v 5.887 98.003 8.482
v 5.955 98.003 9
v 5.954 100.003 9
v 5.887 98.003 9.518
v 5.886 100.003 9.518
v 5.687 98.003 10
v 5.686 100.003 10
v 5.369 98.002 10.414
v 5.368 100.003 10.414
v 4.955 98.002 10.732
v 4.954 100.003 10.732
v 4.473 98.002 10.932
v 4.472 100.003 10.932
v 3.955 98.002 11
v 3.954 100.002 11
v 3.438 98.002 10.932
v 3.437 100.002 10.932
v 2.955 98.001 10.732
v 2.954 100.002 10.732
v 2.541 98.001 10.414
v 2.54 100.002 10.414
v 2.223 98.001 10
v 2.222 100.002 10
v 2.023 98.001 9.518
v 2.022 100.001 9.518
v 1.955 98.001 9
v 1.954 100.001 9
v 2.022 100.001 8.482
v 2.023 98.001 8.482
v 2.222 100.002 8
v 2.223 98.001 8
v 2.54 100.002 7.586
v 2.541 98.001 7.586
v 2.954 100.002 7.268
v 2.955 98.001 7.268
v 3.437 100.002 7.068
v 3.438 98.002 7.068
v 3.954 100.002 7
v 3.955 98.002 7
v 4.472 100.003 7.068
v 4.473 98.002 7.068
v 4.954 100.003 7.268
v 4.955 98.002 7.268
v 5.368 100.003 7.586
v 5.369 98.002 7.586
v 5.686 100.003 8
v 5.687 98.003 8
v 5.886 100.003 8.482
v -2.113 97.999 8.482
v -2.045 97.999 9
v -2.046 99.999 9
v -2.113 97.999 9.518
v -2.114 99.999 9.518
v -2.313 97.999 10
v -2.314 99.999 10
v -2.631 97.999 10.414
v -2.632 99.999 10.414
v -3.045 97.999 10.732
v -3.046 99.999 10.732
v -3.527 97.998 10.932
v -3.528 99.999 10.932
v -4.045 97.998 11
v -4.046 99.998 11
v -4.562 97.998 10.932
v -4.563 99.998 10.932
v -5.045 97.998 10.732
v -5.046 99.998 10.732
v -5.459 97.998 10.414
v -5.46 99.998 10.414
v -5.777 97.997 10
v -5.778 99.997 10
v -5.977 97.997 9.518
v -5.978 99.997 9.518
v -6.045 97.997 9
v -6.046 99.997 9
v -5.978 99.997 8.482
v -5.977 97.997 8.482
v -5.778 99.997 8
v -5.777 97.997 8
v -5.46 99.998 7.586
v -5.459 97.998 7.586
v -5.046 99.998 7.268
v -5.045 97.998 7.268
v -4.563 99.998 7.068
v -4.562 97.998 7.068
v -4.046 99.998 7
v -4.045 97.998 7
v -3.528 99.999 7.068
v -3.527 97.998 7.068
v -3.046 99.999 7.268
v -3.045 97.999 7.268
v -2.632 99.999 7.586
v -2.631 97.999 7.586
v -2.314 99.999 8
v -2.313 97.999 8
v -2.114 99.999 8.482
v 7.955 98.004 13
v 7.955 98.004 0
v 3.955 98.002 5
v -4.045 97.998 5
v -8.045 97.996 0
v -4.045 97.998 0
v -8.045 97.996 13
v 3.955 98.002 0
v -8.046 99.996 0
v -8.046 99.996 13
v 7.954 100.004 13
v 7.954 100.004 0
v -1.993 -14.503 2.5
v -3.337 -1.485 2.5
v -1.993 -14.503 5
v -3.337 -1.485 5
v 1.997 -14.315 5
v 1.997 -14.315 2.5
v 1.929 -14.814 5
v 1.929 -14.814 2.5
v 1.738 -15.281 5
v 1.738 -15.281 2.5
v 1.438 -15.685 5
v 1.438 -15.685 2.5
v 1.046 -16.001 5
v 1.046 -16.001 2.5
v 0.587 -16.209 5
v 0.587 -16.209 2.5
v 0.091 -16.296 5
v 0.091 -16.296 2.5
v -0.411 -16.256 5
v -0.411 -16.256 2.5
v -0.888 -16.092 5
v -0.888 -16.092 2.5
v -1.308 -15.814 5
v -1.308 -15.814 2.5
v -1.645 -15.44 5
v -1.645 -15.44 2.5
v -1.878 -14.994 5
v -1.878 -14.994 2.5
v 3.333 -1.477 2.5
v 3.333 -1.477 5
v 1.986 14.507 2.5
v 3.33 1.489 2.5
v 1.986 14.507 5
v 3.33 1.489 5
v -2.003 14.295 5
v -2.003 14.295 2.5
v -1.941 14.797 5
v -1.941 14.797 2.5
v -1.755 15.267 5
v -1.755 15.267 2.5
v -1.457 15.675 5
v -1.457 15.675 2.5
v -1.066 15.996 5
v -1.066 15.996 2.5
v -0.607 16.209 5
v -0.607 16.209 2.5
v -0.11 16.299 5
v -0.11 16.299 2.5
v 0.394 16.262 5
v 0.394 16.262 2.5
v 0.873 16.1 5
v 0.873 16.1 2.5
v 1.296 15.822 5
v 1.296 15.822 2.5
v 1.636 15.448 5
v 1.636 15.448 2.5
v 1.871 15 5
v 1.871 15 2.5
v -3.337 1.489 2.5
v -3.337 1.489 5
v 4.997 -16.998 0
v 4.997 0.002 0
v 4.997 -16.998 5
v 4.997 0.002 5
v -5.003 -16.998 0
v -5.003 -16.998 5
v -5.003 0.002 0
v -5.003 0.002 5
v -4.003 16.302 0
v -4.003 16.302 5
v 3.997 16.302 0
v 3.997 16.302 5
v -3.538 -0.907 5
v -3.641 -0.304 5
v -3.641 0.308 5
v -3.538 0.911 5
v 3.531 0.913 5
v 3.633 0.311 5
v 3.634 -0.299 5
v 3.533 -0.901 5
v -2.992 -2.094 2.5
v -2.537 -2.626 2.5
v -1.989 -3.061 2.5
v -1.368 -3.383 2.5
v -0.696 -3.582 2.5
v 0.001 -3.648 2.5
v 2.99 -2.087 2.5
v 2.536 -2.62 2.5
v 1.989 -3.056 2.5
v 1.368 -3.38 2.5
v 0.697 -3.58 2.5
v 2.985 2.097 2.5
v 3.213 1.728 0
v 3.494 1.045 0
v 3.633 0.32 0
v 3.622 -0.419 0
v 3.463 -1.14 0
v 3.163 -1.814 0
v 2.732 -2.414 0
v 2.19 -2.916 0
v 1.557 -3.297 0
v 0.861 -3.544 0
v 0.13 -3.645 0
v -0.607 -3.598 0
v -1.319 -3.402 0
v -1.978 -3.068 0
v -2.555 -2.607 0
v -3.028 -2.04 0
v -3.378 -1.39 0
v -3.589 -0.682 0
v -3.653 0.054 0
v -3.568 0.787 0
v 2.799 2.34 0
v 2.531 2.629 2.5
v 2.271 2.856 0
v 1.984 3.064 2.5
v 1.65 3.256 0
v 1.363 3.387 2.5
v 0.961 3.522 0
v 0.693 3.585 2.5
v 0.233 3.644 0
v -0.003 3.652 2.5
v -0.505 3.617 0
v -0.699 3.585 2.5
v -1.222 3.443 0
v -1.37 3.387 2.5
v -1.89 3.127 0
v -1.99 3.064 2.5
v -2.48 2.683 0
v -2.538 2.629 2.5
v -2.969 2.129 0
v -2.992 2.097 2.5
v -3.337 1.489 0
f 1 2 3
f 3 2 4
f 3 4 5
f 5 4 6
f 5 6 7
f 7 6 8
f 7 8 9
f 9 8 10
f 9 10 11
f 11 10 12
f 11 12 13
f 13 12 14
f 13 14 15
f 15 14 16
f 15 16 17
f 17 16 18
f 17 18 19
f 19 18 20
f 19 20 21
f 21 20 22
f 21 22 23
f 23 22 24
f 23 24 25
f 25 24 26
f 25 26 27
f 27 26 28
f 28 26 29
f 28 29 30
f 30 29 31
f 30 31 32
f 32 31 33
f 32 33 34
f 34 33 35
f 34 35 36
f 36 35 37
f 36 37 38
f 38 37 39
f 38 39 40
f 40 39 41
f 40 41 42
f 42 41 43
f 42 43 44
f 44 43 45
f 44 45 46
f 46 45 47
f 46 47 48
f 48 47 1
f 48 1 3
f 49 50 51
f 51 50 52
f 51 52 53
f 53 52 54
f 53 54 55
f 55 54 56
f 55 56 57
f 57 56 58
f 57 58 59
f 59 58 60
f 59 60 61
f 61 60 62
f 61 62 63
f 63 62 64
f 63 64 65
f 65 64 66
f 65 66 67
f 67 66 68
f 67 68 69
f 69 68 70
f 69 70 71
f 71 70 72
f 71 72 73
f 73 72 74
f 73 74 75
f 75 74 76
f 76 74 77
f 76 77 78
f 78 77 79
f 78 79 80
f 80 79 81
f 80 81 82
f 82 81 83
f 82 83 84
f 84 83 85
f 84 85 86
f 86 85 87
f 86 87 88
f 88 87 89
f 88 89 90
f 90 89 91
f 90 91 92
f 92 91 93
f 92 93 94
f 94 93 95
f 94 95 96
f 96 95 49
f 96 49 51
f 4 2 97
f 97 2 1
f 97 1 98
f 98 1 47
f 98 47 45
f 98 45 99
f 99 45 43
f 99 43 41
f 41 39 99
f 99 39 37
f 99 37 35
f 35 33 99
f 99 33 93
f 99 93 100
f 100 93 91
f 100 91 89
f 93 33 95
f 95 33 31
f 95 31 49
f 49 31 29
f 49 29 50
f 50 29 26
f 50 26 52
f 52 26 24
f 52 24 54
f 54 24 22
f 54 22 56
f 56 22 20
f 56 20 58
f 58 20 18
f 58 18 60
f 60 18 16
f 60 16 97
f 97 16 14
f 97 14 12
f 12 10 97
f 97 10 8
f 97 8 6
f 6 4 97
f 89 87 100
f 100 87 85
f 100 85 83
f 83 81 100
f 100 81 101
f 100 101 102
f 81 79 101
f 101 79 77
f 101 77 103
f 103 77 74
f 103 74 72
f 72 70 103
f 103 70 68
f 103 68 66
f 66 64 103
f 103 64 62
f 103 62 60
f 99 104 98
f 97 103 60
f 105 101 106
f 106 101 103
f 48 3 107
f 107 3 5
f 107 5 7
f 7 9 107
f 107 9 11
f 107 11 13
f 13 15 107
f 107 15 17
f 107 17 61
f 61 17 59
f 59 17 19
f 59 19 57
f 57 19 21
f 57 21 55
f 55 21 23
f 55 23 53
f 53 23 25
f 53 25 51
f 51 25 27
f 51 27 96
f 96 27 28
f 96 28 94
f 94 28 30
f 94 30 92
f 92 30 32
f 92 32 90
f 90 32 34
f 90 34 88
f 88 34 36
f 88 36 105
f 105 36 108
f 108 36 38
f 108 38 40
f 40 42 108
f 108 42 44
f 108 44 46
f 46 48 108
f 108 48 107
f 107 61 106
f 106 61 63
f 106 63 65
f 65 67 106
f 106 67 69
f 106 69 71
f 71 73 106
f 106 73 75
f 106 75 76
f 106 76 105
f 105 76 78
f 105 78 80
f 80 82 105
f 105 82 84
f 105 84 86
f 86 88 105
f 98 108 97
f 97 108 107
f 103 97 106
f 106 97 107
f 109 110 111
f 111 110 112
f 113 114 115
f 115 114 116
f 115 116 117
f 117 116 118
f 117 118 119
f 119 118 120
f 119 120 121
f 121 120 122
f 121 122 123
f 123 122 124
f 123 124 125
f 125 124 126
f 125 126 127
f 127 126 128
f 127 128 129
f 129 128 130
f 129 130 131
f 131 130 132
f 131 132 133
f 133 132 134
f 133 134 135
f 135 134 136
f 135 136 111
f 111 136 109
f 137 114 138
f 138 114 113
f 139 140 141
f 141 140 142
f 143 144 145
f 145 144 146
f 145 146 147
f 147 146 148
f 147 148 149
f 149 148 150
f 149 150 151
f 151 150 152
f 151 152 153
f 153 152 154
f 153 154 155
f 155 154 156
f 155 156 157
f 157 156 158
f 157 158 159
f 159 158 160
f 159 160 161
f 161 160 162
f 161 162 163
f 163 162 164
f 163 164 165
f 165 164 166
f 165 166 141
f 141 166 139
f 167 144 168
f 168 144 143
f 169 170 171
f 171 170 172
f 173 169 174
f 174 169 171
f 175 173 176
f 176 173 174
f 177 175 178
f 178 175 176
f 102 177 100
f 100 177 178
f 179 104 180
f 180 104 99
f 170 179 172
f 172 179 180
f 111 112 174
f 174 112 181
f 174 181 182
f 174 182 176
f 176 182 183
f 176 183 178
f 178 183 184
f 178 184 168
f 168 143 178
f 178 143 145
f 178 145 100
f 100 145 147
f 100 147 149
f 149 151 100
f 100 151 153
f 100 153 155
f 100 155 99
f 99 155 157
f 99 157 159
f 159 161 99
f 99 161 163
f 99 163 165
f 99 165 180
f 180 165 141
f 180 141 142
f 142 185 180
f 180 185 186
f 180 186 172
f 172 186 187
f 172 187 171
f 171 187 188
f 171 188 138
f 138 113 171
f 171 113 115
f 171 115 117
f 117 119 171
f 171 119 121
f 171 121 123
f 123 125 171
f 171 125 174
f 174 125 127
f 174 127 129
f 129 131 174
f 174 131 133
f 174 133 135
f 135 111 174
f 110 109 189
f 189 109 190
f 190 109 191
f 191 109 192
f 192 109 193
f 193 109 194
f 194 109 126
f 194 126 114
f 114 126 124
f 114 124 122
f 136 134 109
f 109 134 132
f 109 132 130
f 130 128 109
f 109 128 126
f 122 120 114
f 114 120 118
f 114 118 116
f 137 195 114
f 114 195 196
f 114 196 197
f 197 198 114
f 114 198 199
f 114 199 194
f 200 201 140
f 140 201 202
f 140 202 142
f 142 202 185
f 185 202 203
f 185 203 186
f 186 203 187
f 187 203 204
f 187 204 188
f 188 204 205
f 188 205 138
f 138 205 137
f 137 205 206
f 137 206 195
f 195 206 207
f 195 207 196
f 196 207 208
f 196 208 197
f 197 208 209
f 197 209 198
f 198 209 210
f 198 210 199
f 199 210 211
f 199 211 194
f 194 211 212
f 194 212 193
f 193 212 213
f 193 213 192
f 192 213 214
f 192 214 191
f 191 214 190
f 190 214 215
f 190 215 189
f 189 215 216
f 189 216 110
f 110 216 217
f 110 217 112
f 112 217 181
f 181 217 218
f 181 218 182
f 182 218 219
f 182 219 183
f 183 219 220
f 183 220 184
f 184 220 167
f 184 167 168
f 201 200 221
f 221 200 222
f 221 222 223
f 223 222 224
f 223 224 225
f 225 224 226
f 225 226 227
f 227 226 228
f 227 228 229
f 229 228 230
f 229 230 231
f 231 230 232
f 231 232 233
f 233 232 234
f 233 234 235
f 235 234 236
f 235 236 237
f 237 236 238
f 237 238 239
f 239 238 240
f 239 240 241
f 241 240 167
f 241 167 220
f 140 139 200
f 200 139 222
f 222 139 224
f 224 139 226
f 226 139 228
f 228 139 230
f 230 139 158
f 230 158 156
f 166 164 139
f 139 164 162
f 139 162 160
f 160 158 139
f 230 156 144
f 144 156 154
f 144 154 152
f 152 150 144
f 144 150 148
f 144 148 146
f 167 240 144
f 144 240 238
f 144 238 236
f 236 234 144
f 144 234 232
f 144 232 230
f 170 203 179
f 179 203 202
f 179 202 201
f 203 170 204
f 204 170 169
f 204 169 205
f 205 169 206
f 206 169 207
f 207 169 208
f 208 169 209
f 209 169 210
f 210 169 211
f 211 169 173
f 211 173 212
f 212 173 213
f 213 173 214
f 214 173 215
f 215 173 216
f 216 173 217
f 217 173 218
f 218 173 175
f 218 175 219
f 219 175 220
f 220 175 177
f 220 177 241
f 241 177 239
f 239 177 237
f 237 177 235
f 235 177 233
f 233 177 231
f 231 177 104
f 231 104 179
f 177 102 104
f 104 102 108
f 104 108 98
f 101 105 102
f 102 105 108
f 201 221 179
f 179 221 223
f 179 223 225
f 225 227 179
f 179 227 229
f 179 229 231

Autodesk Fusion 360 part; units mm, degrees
sketch "arm sketch" plane through (0, 0, 0) normal (0, 0, 1) x (1, 0, 0)
  circle A0 centre (-0.0034, 0.0021) radius 3.65
  arc A1 (-0.0006, -3.625) -> (0, -3.625) centre (0, 0) ccw
  line L0 (0, -3.625) -> (0, -3.6479)
  line L1 (0, -3.625) -> (0, -3.6479)
  line L2 (1.986, 14.5075) -> (3.33, 1.4889)
  line L3 (-3.3369, 1.4889) -> (-2.0034, 14.2947)
  line L4 (-3.3369, -1.4847) -> (-1.9929, -14.5033)
  line L5 (1.9965, -14.3152) -> (3.3333, -1.4773)
  line L6 (-4.0034, 16.3021) -> (-5.0034, 0.0021)
  line L7 (3.9966, 16.3021) -> (4.9966, 0.0021)
  line L8 (4.9966, 0.0021) -> (4.9966, -16.9979)
  line L9 (-5.0034, -17.9979) -> (-5.0034, 0.0021)
  line L10 (4.9966, -16.9979) -> (-5.0034, -16.9979)
  line L11 (-0.0449, 98) -> (7.9551, 98.0037)
  line L12 (-0.0449, 98) -> (-8.0449, 97.9963)
  line L13 (-4.0034, 16.3021) -> (-4.0449, 97.9982)
  line L14 (3.9966, 16.3021) -> (3.9551, 98.0018)
  line L15 (-8.0449, 97.9963) -> (-8.0458, 99.9963)
  line L16 (-8.0458, 99.9963) -> (7.9542, 100.0044)
  line L17 (7.9542, 100.0044) -> (7.9551, 98.0037)
  arc A2 (-1.9929, -14.5033) -> (1.9965, -14.3152) centre (-0.0034, -14.2979) ccw
  arc A3 (1.986, 14.5075) -> (-2.0034, 14.2947) centre (-0.0034, 14.3021) ccw
  dimension "d13" = 7.3
  dimension "d30" = 14.3
  dimension "d31" = 14.3
  dimension "d32" = 4
  dimension "d33" = 4
  dimension "d50" = 5
  dimension "d52" = 5
  dimension "d55" = 1
  dimension "d69" = 98
  dimension "d71" = 8
  dimension "d72" = 8
  dimension "d73" = 2
  dimension "d74" = 16
extrude "Extrude14" add sketch "arm sketch" along normal blind 2.5 contours A0 L2 L3 A3 | A0 L4 L5 A2 makes body 1 at (-0.0069, 10.8181, 0) makes body 2 at (0.0014, -10.8221, 0)
extrude "Extrude15" add sketch "arm sketch" along normal blind 5 contours L6 L7 L8 L9 L10 L11 L12 L13 L14 bodies 1 2
extrude "Extrude16" add sketch "arm sketch" along normal blind 13 contours L11 L12 L15 L16 L17 bodies 1
sketch "bolts" plane through (-0.0507, 100.0004, 0) normal (-0.0005, 1, 0) x (-1, -0.0005, 0)
  line L0 (-8.0049, 0) -> (7.9951, 0)
  line L1 (7.9951, 0) -> (7.9951, 13)
  line L2 (7.9951, 13) -> (-8.0049, 13)
  line L3 (-8.0049, 13) -> (-8.0049, 0)
  circle A0 centre (-4.0049, 9) radius 2
  circle A1 centre (3.9951, 9) radius 2
  dimension "d85" = 8
  dimension "d86" = 4
  dimension "d87" = 4
extrude "Extrude17" cut sketch "bolts" against normal blind 5 contours A0 | A1 bodies 1
